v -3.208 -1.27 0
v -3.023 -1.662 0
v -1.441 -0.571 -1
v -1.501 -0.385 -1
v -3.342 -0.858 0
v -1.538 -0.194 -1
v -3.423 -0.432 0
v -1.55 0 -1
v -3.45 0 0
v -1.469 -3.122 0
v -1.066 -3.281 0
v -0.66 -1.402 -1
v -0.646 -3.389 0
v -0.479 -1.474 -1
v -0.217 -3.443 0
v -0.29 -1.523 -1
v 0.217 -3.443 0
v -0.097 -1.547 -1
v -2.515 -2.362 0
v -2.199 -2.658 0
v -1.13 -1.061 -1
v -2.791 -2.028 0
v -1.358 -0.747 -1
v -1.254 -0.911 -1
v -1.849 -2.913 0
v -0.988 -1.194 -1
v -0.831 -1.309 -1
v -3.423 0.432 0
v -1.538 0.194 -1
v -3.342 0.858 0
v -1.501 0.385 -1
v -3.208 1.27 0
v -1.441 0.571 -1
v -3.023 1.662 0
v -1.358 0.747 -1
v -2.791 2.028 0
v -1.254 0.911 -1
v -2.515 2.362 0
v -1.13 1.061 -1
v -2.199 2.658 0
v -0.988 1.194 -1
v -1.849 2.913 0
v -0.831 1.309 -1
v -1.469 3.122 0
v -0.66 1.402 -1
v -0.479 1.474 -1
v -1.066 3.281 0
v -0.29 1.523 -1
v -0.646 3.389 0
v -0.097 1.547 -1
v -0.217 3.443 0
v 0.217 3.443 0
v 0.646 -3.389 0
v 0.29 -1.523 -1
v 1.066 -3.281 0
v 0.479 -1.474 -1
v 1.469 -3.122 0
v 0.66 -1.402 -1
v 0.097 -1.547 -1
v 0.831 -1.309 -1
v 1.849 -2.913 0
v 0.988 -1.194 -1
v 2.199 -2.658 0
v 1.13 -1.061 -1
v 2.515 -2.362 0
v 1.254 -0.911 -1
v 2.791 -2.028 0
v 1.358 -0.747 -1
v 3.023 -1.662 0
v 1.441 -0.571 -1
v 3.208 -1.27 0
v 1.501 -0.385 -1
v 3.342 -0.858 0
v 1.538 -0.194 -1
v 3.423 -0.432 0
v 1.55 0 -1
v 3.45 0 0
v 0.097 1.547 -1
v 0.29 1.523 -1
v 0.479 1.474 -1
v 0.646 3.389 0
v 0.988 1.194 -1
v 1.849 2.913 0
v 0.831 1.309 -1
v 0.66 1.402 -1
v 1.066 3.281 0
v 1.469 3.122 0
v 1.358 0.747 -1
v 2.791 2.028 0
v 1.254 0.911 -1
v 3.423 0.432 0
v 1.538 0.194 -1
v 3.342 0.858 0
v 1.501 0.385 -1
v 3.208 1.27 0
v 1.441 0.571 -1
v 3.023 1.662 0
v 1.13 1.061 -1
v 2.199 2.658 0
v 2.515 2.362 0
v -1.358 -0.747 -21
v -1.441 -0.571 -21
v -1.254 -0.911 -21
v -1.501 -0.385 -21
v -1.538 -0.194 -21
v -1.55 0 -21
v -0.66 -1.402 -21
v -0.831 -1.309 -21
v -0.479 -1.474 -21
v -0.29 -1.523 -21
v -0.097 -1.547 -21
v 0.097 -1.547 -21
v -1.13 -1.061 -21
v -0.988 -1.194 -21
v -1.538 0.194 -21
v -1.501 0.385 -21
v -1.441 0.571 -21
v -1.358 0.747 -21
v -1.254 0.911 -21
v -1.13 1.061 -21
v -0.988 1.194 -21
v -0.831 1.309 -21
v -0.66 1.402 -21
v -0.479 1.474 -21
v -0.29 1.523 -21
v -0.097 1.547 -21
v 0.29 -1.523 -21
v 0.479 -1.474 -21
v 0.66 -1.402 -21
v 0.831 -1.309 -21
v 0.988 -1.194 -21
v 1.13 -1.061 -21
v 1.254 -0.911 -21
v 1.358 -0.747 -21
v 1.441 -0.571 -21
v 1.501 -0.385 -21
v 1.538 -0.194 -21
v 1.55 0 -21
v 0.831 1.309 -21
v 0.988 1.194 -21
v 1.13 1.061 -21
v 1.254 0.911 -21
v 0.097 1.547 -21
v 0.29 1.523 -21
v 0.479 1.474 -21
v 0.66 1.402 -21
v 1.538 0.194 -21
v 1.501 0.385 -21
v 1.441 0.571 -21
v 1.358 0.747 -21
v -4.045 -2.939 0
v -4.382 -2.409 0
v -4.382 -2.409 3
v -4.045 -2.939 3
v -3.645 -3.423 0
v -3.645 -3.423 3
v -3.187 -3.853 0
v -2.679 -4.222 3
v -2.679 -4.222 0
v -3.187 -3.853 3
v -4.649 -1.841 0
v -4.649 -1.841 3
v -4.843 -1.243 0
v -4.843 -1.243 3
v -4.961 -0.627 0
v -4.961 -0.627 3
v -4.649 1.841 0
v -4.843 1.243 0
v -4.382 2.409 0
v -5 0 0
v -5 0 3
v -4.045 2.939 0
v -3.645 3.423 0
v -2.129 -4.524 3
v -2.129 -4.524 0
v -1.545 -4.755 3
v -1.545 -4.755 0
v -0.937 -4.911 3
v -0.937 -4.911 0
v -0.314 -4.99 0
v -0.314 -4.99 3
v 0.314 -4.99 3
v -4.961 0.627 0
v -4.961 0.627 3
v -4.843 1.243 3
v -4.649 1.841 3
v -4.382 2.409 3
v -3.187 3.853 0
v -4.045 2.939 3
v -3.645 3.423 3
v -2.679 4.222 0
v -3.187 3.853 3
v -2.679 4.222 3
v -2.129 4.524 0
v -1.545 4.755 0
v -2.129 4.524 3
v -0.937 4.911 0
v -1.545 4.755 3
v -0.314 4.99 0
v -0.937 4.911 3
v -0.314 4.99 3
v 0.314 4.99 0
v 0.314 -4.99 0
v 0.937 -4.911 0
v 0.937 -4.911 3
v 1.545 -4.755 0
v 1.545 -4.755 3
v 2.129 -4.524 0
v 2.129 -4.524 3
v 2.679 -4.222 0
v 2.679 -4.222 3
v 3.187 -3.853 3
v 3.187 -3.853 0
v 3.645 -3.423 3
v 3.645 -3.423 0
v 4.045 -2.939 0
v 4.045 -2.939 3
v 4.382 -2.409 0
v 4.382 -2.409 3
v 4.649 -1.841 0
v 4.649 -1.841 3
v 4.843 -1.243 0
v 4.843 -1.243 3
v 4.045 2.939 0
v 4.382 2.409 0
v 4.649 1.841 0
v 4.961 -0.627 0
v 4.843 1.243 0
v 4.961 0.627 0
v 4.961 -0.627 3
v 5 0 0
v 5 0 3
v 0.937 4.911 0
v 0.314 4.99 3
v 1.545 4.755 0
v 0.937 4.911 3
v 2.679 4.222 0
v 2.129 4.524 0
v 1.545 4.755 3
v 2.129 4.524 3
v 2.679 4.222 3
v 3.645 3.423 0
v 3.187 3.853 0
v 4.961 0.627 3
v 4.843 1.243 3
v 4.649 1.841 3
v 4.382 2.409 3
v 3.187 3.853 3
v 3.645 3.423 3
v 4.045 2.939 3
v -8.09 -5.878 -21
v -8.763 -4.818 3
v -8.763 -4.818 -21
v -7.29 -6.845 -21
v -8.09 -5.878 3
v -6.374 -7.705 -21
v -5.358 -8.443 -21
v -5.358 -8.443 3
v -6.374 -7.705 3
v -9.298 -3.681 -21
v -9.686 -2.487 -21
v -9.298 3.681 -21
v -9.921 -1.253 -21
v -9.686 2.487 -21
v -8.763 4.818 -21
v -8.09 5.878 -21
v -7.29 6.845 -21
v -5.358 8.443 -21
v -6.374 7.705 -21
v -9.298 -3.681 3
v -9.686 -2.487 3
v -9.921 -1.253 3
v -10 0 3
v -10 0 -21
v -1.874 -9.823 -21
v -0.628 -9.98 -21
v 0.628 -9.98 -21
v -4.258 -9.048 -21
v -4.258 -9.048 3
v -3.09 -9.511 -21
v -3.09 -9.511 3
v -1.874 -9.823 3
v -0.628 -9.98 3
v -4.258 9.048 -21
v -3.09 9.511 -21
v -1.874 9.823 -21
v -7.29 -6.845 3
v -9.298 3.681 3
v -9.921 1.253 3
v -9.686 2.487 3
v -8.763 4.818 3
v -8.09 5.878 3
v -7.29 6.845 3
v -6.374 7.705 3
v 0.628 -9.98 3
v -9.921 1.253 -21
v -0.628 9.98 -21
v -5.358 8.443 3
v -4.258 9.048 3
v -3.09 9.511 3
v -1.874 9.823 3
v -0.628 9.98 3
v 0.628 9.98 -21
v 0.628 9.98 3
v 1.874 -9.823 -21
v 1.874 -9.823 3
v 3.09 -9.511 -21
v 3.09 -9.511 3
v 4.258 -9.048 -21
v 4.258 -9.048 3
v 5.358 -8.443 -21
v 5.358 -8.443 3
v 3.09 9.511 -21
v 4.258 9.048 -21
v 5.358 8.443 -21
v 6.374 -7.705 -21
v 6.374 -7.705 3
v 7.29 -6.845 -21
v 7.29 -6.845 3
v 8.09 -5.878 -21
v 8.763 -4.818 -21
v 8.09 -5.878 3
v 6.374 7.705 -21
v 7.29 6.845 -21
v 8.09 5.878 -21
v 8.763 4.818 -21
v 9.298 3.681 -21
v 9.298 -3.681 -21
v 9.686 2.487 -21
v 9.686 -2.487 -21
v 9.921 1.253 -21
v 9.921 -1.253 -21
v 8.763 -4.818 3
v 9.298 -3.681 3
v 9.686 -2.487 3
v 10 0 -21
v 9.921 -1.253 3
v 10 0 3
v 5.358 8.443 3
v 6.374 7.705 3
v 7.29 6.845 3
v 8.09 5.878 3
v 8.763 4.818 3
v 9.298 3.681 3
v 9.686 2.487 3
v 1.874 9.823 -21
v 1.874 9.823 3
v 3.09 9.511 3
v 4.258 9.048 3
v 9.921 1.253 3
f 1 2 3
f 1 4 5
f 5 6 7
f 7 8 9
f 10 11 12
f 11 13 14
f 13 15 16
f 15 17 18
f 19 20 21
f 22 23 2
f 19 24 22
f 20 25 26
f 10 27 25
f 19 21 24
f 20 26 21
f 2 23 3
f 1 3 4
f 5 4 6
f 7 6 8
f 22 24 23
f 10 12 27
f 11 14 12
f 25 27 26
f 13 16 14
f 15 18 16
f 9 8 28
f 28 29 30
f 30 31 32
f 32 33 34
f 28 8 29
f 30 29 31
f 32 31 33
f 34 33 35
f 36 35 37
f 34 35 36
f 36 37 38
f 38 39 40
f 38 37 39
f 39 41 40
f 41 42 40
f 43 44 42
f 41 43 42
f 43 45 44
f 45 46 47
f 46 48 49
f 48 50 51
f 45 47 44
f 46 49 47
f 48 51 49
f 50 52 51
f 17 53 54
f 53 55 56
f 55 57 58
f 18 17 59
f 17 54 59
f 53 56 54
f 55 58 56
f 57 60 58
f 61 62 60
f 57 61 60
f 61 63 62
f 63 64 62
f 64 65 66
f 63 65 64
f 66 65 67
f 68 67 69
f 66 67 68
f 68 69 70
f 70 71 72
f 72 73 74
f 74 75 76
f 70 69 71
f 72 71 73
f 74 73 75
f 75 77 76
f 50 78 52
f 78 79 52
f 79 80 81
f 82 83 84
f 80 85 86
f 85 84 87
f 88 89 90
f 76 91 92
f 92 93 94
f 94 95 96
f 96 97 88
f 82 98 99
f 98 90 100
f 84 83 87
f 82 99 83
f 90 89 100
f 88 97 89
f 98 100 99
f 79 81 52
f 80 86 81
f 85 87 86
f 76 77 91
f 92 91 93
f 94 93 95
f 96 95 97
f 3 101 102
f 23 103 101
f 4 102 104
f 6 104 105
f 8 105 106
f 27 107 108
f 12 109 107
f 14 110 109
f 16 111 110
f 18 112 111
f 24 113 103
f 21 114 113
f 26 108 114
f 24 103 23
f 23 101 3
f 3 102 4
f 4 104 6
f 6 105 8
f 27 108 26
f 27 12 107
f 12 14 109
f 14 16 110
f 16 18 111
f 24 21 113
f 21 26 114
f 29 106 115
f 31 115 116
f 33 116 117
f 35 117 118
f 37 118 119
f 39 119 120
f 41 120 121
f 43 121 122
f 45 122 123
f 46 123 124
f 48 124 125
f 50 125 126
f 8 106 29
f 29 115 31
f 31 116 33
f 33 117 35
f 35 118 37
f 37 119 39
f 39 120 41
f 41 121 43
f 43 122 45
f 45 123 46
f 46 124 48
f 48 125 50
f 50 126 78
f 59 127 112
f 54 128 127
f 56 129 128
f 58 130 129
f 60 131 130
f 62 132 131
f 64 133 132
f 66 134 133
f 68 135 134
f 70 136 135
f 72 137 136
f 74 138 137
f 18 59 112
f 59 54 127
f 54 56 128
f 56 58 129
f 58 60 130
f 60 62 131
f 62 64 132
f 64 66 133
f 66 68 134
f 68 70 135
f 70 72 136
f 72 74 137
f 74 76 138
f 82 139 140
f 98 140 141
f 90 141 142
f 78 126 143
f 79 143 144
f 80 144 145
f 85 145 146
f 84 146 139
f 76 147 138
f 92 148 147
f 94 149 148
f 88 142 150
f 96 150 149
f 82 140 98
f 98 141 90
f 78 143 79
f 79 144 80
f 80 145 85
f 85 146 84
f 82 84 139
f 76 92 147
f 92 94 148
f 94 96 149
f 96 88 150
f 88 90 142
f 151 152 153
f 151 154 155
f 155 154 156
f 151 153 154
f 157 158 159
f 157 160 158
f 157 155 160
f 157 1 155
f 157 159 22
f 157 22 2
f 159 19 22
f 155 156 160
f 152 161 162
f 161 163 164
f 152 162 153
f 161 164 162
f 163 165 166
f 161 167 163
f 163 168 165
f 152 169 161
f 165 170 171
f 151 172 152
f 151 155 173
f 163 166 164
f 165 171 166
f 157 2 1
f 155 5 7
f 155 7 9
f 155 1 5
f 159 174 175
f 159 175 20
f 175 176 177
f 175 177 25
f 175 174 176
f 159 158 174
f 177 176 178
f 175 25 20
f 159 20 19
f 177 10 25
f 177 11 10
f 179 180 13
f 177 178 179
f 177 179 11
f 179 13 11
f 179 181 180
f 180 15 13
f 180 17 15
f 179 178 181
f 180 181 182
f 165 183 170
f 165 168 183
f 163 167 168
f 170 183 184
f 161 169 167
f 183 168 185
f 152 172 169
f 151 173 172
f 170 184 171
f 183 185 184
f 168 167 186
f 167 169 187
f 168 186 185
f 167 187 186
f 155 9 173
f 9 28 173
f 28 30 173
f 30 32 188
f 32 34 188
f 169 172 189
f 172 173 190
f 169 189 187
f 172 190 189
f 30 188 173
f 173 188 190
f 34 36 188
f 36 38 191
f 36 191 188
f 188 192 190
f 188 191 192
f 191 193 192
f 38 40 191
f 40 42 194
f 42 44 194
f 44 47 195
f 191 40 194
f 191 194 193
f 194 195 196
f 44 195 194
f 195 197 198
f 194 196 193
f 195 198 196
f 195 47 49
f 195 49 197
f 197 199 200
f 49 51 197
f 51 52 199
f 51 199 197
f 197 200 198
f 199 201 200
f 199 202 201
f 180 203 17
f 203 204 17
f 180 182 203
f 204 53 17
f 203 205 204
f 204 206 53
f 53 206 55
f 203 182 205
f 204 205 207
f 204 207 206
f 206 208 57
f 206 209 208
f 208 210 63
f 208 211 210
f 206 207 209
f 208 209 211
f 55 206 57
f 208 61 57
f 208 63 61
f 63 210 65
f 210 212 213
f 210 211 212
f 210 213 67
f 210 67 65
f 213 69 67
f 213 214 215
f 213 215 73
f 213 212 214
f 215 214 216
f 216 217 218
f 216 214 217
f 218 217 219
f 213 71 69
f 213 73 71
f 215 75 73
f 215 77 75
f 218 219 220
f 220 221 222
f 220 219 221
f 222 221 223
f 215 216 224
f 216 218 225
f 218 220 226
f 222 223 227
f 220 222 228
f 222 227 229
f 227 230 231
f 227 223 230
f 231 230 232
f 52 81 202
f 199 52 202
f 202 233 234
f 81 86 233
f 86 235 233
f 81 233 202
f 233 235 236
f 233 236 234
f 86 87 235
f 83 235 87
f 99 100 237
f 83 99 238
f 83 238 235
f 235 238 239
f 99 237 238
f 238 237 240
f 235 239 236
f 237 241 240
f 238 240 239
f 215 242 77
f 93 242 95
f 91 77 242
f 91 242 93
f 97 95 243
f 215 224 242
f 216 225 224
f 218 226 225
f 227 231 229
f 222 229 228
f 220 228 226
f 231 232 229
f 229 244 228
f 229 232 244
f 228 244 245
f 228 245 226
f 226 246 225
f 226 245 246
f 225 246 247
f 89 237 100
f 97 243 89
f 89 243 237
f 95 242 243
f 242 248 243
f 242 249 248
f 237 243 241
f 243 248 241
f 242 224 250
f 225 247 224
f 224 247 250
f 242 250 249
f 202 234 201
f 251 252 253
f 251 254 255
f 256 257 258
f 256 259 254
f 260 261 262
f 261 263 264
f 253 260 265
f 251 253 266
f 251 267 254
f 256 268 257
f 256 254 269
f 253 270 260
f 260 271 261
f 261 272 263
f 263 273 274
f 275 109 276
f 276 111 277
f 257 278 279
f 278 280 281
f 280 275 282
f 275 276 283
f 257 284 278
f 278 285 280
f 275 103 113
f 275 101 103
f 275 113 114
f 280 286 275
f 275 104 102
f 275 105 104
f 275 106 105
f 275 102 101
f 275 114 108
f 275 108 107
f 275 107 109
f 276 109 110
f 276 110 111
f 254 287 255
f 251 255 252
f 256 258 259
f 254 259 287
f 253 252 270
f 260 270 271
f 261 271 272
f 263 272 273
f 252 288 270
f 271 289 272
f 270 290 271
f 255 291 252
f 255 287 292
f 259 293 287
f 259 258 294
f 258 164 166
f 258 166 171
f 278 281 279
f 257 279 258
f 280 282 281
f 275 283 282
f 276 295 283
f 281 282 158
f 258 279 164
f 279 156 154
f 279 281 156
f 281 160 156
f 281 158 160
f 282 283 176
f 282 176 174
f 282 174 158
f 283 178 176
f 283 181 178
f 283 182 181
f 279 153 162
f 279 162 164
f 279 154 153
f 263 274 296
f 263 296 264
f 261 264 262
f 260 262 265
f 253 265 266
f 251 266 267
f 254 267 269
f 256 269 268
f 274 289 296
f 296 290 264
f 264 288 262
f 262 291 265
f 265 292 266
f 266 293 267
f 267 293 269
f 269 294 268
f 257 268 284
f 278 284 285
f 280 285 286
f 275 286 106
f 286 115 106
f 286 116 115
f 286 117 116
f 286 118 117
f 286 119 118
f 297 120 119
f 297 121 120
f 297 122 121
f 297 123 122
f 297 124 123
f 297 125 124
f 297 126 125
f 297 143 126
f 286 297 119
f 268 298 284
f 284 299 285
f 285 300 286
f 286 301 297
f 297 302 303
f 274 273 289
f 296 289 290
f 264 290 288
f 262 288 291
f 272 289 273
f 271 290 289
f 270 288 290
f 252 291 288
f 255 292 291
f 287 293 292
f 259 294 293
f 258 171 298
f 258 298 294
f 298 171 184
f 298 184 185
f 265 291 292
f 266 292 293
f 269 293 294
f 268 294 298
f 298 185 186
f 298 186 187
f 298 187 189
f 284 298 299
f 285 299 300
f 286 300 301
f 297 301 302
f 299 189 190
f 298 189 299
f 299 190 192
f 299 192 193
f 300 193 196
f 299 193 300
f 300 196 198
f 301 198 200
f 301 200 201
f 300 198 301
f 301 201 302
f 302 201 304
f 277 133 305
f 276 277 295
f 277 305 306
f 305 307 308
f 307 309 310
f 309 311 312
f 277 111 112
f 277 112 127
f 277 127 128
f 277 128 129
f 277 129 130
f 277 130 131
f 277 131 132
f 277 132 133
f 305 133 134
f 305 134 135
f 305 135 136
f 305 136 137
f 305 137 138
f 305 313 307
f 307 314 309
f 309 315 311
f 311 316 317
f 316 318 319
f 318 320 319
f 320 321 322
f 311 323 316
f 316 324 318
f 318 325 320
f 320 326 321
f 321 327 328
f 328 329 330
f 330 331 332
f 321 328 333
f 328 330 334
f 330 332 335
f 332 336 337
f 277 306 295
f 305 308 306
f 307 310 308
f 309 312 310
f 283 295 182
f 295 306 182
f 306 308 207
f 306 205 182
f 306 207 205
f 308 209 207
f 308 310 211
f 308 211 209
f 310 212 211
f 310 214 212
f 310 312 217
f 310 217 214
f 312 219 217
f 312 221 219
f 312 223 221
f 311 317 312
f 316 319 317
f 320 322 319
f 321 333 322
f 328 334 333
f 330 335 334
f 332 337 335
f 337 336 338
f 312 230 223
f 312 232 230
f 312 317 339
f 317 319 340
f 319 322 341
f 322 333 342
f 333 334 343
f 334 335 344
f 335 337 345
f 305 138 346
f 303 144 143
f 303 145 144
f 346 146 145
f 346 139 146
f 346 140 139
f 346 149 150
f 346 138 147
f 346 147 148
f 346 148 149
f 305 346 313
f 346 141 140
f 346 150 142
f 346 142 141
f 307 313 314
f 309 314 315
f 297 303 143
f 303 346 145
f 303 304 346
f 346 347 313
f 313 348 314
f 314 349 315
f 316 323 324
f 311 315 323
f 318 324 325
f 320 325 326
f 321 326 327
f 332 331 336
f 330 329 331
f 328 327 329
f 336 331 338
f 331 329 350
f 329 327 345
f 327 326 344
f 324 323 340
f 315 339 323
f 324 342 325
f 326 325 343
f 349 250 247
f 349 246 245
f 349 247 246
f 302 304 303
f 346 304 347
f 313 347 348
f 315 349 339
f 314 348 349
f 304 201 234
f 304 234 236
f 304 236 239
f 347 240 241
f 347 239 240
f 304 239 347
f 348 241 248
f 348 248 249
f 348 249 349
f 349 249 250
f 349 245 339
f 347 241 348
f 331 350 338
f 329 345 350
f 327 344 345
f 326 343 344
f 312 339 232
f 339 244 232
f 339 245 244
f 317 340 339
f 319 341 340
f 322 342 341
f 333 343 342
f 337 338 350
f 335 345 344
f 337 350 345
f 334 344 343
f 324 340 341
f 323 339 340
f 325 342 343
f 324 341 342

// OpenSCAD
$fn = 50;

difference() {
	union() {
		translate(v = [0, 0, -21.0]) {
			cylinder(h = 24, r = 10.0);
		}
	}
	union() {
		translate(v = [0, 0, 0]) {
			rotate(a = [0, 0, 0]) {
				difference() {
					union() {
						translate(v = [0, 0, -24.0]) {
							cylinder(h = 24, r = 1.25);
						}
						translate(v = [0, 0, -1.0]) {
							cylinder(h = 1.0, r1 = 1.55, r2 = 3.45);
						}
						translate(v = [0, 0, -24.0]) {
							cylinder(h = 24, r = 1.55);
						}
						translate(v = [0, 0, -24.0]) {
							cylinder(h = 24, r = 1.25);
						}
					}
					union();
				}
			}
		}
		#cylinder(h = 3, r = 5.0);
	}
}
